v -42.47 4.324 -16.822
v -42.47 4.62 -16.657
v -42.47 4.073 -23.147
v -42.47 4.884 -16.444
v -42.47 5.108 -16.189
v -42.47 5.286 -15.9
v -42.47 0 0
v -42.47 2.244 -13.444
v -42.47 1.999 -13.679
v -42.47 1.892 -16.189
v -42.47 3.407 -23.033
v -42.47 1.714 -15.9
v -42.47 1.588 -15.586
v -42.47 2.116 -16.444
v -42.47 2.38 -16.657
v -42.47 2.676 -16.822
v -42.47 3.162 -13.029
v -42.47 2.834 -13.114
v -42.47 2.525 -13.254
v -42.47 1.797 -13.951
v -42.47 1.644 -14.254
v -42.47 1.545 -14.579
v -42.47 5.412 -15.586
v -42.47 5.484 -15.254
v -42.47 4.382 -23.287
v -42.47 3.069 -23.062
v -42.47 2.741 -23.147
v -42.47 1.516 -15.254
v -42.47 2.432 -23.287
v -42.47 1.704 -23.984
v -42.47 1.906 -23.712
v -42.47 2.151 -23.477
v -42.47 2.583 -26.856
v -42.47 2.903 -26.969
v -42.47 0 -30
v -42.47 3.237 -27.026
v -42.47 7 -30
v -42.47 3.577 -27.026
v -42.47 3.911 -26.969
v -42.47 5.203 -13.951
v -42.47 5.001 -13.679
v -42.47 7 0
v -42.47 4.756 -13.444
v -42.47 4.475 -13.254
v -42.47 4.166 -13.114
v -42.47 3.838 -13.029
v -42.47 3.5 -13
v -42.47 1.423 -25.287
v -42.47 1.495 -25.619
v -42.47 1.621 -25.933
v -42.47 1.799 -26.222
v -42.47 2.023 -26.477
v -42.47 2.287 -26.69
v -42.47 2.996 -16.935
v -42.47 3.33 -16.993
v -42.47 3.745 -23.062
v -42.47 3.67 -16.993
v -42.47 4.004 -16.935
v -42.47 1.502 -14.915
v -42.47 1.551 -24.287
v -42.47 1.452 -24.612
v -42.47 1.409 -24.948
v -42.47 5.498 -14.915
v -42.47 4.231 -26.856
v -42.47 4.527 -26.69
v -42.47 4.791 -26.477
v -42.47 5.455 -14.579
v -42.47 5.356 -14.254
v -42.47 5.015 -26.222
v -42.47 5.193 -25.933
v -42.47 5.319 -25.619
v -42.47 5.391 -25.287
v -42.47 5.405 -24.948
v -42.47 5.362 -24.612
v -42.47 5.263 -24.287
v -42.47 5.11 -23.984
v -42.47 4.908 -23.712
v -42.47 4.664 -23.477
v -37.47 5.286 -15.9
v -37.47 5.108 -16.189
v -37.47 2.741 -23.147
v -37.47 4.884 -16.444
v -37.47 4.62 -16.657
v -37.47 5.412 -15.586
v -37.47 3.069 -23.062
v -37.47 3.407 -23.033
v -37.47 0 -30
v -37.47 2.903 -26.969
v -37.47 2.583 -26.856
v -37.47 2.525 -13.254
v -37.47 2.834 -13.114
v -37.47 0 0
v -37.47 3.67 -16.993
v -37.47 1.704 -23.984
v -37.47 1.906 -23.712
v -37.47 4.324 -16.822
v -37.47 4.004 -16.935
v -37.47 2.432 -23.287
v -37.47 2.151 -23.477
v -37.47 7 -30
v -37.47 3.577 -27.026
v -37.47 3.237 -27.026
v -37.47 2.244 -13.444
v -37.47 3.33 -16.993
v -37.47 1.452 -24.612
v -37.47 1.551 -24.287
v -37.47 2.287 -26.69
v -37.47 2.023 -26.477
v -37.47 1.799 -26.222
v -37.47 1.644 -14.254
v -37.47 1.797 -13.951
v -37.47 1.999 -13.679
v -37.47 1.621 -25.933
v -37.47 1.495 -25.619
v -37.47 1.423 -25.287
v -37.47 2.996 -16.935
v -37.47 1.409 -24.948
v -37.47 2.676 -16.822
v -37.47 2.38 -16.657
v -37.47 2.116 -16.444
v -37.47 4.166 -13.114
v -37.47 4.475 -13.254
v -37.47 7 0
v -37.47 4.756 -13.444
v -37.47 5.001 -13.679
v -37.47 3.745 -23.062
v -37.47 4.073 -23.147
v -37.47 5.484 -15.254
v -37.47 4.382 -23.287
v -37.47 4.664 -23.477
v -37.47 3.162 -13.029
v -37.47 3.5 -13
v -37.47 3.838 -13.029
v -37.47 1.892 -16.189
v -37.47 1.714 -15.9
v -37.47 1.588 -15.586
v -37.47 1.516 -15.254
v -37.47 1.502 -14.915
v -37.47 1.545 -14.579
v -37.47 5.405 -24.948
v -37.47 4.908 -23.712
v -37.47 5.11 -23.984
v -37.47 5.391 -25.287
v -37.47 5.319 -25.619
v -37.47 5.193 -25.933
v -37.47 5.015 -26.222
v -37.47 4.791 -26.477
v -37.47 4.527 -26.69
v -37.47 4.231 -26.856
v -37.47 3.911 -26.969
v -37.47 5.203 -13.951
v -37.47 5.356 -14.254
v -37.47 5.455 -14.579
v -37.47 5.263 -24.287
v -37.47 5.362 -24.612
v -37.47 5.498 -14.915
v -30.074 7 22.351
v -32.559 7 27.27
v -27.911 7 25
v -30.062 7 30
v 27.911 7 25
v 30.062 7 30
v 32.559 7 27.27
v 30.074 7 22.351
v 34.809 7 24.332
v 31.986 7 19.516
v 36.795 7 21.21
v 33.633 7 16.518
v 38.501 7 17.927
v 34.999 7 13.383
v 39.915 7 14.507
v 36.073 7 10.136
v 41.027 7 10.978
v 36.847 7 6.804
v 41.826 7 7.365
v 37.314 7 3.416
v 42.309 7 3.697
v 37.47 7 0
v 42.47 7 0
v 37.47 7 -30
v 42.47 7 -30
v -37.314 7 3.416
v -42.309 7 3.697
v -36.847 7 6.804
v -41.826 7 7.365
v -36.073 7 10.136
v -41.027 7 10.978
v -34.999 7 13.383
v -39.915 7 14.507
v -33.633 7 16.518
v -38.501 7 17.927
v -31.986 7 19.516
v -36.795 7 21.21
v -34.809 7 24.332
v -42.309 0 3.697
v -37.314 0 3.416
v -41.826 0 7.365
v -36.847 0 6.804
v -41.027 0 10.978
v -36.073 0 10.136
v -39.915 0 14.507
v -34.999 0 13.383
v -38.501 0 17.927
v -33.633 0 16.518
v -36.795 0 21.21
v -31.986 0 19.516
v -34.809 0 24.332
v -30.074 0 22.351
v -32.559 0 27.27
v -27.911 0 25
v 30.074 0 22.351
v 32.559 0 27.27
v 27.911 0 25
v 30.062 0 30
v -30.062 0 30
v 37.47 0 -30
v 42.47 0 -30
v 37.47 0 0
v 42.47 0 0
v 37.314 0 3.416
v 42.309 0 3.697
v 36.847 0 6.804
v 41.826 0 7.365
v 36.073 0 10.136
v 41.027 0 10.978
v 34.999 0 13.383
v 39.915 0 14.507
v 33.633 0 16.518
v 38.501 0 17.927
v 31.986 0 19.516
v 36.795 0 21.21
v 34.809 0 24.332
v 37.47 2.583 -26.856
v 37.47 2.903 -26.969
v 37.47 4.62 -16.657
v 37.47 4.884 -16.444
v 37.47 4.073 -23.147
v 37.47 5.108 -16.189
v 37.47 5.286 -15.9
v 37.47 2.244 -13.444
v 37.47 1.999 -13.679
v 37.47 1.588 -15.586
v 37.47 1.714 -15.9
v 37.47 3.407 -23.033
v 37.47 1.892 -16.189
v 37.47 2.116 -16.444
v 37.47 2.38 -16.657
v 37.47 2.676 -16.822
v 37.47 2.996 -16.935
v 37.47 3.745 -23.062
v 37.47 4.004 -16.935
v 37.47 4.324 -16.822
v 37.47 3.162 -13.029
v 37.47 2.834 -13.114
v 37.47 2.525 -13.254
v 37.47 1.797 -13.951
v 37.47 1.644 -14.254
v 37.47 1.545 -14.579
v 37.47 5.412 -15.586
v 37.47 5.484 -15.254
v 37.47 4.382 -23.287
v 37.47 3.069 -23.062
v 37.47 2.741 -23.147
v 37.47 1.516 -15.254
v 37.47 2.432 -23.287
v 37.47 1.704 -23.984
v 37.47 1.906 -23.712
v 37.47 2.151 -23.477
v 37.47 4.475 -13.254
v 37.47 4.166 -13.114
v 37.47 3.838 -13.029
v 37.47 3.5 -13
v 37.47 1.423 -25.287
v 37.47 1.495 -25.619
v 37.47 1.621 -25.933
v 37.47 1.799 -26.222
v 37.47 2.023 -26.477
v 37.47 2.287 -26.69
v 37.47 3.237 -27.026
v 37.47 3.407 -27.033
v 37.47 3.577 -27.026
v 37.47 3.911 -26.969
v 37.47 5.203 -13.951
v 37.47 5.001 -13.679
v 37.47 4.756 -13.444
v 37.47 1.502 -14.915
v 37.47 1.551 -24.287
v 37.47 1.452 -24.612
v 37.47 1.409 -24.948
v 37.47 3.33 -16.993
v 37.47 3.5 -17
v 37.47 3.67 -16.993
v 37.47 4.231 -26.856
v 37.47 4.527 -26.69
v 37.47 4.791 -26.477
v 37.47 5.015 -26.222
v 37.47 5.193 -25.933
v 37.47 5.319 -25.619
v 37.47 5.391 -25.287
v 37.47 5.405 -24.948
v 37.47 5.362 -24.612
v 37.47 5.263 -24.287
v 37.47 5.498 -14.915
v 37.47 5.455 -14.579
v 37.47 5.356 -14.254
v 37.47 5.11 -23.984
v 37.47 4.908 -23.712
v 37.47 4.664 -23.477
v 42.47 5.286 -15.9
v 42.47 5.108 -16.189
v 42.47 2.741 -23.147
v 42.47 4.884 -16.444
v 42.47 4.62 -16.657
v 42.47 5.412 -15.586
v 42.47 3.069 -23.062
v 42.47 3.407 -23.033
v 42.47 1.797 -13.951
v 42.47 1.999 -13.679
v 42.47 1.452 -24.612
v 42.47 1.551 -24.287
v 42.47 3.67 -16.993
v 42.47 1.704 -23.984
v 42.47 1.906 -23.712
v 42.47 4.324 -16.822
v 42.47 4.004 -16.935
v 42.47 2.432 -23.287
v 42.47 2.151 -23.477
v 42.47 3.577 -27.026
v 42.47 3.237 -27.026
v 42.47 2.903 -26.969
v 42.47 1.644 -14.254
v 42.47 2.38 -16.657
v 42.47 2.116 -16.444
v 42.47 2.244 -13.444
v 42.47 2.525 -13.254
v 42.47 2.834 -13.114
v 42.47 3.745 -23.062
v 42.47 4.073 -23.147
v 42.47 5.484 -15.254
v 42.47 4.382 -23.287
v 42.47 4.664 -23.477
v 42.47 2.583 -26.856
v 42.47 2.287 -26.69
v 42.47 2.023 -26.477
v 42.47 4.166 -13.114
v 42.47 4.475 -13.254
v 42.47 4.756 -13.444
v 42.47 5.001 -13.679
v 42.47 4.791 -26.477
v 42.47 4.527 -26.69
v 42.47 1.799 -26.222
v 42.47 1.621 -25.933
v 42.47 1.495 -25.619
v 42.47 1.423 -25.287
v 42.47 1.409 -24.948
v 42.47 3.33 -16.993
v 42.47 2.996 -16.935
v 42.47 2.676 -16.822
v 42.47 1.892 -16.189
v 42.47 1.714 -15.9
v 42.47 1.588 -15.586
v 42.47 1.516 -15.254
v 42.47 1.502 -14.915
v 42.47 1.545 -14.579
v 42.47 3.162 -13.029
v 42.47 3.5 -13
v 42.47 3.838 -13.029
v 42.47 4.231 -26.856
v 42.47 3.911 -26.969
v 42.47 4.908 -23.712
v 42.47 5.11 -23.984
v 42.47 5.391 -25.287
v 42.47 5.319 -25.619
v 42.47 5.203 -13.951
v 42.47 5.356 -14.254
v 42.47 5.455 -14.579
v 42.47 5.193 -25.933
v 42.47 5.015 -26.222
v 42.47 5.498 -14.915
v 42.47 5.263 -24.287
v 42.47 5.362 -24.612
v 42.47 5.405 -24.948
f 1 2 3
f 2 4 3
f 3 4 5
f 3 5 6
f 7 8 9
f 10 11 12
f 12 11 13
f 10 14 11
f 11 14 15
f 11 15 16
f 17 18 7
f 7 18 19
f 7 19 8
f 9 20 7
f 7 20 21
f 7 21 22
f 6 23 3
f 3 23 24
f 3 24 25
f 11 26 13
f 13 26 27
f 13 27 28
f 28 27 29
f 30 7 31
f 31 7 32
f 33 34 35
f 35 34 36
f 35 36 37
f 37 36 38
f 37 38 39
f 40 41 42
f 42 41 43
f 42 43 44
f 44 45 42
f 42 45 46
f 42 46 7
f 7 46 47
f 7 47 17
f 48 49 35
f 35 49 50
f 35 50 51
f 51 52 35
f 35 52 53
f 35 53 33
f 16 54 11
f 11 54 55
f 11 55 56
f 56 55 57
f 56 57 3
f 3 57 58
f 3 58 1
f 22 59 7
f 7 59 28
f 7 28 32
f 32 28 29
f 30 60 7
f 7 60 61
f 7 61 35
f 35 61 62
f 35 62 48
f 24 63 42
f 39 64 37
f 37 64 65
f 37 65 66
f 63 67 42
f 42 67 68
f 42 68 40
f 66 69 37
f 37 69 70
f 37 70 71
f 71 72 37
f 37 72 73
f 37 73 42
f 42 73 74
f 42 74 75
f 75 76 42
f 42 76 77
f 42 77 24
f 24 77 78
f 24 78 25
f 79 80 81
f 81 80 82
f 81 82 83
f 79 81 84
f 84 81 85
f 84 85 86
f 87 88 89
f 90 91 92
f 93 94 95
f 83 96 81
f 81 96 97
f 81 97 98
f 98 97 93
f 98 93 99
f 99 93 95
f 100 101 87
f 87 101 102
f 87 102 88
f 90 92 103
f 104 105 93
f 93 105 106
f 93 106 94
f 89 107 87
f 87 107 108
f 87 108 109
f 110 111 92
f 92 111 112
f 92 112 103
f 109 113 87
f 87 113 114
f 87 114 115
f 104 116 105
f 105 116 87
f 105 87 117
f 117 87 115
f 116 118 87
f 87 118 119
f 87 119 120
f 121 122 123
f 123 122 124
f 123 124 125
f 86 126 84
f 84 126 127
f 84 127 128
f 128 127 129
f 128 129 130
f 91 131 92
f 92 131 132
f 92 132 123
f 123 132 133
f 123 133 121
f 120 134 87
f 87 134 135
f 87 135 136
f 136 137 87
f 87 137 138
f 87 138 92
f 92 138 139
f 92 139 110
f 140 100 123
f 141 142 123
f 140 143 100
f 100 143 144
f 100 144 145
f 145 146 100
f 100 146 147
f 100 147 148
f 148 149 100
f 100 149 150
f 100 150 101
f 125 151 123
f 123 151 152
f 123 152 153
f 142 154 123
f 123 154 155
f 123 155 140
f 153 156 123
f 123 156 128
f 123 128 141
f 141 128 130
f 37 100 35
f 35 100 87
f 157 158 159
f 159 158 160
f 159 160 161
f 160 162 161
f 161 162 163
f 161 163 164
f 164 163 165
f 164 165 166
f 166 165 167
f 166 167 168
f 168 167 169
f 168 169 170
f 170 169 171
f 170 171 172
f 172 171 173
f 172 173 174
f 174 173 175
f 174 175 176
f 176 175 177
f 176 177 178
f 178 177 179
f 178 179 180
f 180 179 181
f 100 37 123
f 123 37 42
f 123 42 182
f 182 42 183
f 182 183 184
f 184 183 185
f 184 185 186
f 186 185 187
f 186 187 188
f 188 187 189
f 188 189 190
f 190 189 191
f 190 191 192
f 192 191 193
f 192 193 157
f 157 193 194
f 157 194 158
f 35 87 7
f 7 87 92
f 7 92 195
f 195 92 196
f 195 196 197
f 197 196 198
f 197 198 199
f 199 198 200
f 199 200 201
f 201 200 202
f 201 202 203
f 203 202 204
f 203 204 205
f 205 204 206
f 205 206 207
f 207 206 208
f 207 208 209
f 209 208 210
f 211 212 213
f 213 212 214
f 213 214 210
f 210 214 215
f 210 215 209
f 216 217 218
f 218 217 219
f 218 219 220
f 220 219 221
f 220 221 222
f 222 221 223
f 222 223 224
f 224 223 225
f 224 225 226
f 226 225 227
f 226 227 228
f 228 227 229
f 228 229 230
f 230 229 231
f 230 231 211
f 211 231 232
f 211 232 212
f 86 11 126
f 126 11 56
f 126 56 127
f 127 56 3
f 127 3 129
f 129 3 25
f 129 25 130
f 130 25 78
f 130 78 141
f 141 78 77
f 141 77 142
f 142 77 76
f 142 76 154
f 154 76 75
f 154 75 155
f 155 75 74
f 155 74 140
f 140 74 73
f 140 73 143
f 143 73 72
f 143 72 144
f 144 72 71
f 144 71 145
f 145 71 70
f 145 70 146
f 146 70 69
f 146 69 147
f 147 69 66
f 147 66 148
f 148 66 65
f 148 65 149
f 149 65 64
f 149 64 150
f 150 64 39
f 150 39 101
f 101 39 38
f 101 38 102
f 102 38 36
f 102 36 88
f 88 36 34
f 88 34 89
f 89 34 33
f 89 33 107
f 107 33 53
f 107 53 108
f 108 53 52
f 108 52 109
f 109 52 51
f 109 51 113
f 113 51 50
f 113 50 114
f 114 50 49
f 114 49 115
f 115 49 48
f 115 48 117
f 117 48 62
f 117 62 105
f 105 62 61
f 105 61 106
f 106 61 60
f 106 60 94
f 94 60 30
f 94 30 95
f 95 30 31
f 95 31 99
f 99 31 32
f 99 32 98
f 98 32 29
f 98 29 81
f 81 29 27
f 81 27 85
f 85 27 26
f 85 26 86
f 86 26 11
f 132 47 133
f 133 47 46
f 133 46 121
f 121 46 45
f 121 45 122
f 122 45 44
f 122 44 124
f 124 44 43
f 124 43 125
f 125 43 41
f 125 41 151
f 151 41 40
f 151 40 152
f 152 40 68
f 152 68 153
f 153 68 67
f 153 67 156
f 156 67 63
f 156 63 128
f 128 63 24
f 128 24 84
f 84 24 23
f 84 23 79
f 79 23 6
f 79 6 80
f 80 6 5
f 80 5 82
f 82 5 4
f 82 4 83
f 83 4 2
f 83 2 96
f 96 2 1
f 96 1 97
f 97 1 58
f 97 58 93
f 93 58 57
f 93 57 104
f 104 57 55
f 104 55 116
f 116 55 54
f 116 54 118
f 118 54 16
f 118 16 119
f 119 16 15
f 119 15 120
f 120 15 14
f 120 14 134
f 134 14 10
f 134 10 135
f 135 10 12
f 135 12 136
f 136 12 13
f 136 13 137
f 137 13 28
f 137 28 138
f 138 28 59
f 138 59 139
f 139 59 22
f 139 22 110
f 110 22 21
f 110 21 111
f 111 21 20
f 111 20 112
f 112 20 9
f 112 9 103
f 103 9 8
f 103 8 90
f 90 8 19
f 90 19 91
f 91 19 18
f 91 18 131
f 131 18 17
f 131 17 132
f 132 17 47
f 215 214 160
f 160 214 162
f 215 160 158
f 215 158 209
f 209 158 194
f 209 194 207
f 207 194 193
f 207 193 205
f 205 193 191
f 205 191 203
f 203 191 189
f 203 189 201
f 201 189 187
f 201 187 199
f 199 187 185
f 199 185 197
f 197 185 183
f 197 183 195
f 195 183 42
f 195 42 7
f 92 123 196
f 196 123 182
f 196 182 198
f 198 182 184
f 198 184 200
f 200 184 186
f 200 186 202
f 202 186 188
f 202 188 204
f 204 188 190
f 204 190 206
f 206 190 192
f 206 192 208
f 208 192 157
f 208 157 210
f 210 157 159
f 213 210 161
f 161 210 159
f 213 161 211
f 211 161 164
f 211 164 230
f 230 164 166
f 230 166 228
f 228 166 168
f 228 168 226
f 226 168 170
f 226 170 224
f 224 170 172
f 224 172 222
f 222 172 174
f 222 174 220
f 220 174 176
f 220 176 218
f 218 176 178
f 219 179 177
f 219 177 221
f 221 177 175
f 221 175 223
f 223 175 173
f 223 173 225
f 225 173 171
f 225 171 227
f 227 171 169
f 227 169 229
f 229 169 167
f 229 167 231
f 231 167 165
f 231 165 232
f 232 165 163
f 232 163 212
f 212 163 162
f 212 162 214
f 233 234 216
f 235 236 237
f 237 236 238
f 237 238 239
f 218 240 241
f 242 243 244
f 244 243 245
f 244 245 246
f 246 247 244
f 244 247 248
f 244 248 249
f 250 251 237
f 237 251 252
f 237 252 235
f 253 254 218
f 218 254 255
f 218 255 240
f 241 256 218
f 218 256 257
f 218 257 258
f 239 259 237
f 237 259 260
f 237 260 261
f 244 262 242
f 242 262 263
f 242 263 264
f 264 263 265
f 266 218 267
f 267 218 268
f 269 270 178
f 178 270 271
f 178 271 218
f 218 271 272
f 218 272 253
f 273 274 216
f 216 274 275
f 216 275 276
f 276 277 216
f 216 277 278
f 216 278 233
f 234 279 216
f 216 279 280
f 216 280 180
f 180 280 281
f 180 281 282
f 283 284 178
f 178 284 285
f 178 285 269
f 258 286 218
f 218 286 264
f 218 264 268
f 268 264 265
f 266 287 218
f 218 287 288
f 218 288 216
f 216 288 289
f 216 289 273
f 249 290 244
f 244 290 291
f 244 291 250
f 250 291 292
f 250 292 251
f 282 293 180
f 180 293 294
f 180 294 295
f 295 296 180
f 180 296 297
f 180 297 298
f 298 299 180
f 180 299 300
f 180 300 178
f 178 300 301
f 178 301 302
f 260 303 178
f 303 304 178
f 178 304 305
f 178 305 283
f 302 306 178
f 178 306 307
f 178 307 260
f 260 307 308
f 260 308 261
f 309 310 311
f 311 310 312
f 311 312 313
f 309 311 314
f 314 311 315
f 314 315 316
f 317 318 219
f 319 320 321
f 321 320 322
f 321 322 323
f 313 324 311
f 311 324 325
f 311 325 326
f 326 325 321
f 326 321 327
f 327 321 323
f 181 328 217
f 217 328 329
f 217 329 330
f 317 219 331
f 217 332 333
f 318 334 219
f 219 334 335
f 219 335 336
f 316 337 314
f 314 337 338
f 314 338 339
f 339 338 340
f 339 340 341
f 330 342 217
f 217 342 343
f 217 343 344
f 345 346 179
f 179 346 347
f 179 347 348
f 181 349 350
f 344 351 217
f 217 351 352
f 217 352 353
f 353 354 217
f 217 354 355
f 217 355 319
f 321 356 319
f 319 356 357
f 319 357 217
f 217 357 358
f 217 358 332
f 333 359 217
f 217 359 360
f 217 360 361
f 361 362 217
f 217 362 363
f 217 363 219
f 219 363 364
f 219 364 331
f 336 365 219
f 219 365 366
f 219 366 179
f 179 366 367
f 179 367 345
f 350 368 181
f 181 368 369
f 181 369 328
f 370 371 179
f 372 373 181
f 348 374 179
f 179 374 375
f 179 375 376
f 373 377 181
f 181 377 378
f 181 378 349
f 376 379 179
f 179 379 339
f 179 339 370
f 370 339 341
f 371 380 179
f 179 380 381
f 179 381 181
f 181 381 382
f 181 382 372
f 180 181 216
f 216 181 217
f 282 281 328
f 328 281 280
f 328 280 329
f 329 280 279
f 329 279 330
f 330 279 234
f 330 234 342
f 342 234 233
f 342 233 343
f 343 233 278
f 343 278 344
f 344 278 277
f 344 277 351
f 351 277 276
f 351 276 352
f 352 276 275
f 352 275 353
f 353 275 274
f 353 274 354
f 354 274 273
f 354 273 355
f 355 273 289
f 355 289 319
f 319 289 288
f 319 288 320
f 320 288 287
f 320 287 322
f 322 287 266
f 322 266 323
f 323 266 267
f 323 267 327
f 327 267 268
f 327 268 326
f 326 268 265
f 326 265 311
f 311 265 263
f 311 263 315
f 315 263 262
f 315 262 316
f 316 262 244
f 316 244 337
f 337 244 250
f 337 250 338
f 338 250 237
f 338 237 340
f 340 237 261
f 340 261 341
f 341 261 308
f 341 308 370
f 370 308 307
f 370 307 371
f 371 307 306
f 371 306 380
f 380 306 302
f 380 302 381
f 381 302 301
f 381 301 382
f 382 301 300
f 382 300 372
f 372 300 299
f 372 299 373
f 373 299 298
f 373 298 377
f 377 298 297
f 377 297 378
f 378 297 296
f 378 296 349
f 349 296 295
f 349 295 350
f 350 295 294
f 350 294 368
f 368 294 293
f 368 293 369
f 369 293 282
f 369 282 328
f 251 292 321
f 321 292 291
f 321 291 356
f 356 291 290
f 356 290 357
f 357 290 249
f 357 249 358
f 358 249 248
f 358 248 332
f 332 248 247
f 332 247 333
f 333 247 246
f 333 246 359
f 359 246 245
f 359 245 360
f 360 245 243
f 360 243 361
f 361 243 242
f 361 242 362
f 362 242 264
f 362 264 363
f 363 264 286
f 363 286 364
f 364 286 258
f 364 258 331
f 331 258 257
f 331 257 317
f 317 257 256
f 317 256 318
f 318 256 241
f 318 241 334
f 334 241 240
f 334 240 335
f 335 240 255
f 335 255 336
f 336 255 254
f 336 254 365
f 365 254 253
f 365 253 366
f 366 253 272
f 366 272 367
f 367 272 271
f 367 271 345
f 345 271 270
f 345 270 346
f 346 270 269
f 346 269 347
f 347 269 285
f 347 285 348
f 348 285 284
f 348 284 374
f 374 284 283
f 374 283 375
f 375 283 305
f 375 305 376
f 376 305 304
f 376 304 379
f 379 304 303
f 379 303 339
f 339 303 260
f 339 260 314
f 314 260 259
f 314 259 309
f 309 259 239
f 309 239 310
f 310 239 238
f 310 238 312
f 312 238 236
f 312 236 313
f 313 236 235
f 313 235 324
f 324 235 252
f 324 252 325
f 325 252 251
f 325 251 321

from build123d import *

# Parameters (mm, degrees)
SKETCH_1_W          = 5
SKETCH_1_H          = 30
EXTRUDE_1_DEPTH     = 7
EXTRUDE_1_2_DEPTH   = 7
SKETCH_2_R          = 2
CUT_EXTRUDE_1_DEPTH = 91.353769152
EXTRUDE_2_DEPTH     = 7


with BuildPart() as part:
    # Эскиз1 → Бобышка-Вытянуть1 (new body)
    with BuildSketch(Plane(origin=(0, 0, 0), x_dir=(1, 0, 0), z_dir=(0, 1, 0))):
        with Locations((-39.97, 15)):
            Rectangle(SKETCH_1_W, SKETCH_1_H)
    extrude(amount=EXTRUDE_1_DEPTH)


with BuildPart() as body_2:
    # Эскиз1 → Extrude 1 2 (new body)
    with BuildSketch(Plane(origin=(0, 0, 0), x_dir=(1, 0, 0), z_dir=(0, 1, 0))):
        with Locations((39.97, 15)):
            Rectangle(SKETCH_1_W, SKETCH_1_H)
    extrude(amount=EXTRUDE_1_2_DEPTH)


with BuildPart() as cut_extrude_1_tool:
    # Эскиз2 → Вырез-Вытянуть1 (new, through all)
    with BuildSketch(Plane.ZY.offset(42.47)):
        with Locations((-15, 3.5)):
            Circle(SKETCH_2_R)
        with Locations((-25.033065305, 3.407092775)):
            Circle(SKETCH_2_R)
    extrude(amount=-CUT_EXTRUDE_1_DEPTH)


with BuildPart() as part_1:
    add(part.part)

    # Вырез-Вытянуть1: cut by cut_extrude_1_tool
    add(cut_extrude_1_tool.part, mode=Mode.SUBTRACT)



with BuildPart() as body_2_1:
    add(body_2.part)

    # Вырез-Вытянуть1: cut by cut_extrude_1_tool
    add(cut_extrude_1_tool.part, mode=Mode.SUBTRACT)


with BuildPart() as part_2:
    add(part_1.part)

    add(body_2_1.part)  # Бобышка-Вытянуть2 merges body 2
    # Эскиз3 → Бобышка-Вытянуть2 (add)
    with BuildSketch(Plane(origin=(0, 7, 0), x_dir=(1, 0, 0), z_dir=(0, 1, 0))):
        with BuildLine():
            ThreePointArc((22.449964365, -30), (25.304076717, -27.635205835), (27.910587597, -25))
            Line((27.910587597, -25), (-27.910587597, -25))
            ThreePointArc((-27.910587597, -25), (-25.304076717, -27.635205835), (-22.449964365, -30))
            Line((-22.449964365, -30), (22.449964365, -30))
        make_face()
        with BuildLine():
            ThreePointArc((-22.449964365, -30), (-25.304076717, -27.635205835), (-27.910587597, -25))
            ThreePointArc((-27.910587597, -25), (-34.99864724, -13.382660101), (-37.47, 0))
            Line((-37.47, 0), (-42.47, 0))
            ThreePointArc((-42.47, 0), (-39.245495492, -16.232436156), (-30.061618386, -30))
            Line((-30.061618386, -30), (-22.449964365, -30))
        make_face()
        with BuildLine():
            ThreePointArc((37.47, 0), (34.99864724, -13.382660101), (27.910587597, -25))
            ThreePointArc((27.910587597, -25), (25.304076717, -27.635205835), (22.449964365, -30))
            Line((22.449964365, -30), (30.061618386, -30))
            ThreePointArc((30.061618386, -30), (39.245495492, -16.232436156), (42.47, 0))
            Line((42.47, 0), (37.47, 0))
        make_face()
    extrude(amount=-EXTRUDE_2_DEPTH)


solid = part_2.part
